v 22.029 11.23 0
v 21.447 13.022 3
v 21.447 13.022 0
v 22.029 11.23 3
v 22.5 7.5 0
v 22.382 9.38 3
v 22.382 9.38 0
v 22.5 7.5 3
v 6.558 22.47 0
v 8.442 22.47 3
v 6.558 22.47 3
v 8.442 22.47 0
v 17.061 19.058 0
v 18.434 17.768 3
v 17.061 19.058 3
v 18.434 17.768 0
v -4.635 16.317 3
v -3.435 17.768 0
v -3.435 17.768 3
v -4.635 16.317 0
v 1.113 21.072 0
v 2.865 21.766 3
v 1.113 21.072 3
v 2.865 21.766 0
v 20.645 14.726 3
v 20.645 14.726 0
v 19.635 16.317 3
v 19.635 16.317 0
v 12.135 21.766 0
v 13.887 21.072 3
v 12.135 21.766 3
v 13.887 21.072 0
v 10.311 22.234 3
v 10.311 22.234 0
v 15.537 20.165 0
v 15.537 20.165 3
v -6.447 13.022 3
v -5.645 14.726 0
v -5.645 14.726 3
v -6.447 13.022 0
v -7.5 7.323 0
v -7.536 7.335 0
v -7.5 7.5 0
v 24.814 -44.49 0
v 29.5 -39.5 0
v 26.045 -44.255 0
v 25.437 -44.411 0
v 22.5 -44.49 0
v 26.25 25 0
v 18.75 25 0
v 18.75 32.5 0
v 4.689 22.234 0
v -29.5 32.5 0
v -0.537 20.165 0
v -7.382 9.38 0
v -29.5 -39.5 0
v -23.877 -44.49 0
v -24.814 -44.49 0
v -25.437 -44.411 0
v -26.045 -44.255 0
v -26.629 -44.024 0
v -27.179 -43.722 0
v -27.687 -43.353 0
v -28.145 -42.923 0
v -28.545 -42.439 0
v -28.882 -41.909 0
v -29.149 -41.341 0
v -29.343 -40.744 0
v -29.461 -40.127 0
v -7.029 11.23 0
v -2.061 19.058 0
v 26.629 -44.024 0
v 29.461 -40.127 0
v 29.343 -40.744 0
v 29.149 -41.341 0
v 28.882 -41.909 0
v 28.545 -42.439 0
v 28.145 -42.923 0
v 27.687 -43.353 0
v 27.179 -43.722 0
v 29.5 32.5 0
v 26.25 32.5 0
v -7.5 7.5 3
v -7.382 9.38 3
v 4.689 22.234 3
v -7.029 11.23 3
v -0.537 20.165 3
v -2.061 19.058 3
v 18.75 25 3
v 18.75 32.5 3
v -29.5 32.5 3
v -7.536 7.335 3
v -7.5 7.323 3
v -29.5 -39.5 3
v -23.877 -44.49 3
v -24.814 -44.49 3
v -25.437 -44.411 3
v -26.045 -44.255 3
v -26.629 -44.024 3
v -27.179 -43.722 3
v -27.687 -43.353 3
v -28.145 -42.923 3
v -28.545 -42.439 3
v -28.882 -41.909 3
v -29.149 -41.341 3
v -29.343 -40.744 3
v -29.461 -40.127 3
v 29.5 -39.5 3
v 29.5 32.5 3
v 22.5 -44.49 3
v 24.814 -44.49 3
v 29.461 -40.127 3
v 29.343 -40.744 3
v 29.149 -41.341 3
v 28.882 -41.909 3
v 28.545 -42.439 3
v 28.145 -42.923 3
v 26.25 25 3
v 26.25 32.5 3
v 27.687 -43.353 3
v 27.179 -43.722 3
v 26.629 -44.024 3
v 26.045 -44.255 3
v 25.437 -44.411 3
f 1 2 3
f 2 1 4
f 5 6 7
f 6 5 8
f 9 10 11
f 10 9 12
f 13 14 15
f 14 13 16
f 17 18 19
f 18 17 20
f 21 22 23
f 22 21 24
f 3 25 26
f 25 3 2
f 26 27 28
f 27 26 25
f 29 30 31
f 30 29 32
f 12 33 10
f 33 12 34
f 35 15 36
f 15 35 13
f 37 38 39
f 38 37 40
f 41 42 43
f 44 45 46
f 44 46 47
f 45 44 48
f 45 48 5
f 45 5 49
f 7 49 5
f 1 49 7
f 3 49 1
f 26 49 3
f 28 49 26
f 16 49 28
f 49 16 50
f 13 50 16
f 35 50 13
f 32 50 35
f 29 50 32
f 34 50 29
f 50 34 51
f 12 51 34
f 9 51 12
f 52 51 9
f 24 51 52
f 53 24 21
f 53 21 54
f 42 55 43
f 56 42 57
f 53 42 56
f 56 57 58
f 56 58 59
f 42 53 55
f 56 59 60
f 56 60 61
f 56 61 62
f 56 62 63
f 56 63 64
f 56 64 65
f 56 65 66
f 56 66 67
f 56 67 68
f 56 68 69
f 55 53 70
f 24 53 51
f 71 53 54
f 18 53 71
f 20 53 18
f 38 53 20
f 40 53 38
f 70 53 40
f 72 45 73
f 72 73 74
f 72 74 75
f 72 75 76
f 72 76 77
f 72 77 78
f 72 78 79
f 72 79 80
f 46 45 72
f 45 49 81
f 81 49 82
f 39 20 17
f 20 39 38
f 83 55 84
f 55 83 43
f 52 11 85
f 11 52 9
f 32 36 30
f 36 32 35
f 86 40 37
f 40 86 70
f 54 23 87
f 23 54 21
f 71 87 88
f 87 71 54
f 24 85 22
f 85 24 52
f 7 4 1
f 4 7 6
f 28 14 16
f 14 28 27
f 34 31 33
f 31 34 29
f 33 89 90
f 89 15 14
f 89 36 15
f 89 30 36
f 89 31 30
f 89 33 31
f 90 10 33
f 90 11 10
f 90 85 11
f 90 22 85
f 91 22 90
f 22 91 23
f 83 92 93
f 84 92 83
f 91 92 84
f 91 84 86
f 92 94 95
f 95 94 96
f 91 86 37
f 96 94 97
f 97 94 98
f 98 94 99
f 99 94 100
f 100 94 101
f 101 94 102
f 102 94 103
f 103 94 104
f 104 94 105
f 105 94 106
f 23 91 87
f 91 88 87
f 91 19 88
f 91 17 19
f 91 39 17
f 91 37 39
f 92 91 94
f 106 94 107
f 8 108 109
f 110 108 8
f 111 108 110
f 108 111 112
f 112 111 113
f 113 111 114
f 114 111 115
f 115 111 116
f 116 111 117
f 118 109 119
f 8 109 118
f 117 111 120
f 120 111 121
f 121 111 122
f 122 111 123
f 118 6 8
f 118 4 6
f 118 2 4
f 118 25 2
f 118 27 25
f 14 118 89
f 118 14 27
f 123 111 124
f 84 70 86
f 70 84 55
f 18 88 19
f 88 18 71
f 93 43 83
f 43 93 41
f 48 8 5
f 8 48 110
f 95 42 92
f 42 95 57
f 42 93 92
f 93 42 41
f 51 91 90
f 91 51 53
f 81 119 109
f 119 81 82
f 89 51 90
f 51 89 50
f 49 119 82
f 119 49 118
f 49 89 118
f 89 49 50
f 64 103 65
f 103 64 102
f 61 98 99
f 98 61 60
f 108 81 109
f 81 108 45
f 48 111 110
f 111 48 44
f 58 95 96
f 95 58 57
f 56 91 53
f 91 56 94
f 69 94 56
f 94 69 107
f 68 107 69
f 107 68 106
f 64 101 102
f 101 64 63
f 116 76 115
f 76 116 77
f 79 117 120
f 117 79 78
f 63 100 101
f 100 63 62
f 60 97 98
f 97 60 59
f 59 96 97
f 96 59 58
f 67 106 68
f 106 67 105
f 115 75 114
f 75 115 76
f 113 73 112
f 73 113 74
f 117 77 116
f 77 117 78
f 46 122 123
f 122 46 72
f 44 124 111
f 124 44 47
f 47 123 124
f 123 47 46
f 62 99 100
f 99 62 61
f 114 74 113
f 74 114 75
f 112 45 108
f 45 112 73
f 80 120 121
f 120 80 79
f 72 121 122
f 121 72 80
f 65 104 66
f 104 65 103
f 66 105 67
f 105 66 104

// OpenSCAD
$fn = 50;


difference() {
	union() {
		hull() {
			translate(v = [-24.5000000000, 39.5000000000, 0]) {
				cylinder(h = 3, r = 5);
			}
			translate(v = [24.5000000000, 39.5000000000, 0]) {
				cylinder(h = 3, r = 5);
			}
			translate(v = [-24.5000000000, -39.5000000000, 0]) {
				cylinder(h = 3, r = 5);
			}
			translate(v = [24.5000000000, -39.5000000000, 0]) {
				cylinder(h = 3, r = 5);
			}
		}
	}
	union() {
		#translate(v = [7.5000000000, 7.5000000000, 0.0000000000]) {
			cylinder(h = 3, r = 15);
		}
		#translate(v = [-7.5000000000, -82.5000000000, 0]) {
			cube(size = [30, 90, 3]);
		}
		#translate(v = [-34.6000000000, -78.5000000000, 0]) {
			rotate(a = [0, 0, 342.5000000000]) {
				cube(size = [30, 90, 3]);
			}
		}
		#translate(v = [-66.0000000000, 32.5000000000, 0]) {
			cube(size = [100, 85, 3]);
		}
		#translate(v = [18.7500000000, 25.0000000000, 0]) {
			cube(size = [7.5000000000, 100, 3]);
		}
	}
}
